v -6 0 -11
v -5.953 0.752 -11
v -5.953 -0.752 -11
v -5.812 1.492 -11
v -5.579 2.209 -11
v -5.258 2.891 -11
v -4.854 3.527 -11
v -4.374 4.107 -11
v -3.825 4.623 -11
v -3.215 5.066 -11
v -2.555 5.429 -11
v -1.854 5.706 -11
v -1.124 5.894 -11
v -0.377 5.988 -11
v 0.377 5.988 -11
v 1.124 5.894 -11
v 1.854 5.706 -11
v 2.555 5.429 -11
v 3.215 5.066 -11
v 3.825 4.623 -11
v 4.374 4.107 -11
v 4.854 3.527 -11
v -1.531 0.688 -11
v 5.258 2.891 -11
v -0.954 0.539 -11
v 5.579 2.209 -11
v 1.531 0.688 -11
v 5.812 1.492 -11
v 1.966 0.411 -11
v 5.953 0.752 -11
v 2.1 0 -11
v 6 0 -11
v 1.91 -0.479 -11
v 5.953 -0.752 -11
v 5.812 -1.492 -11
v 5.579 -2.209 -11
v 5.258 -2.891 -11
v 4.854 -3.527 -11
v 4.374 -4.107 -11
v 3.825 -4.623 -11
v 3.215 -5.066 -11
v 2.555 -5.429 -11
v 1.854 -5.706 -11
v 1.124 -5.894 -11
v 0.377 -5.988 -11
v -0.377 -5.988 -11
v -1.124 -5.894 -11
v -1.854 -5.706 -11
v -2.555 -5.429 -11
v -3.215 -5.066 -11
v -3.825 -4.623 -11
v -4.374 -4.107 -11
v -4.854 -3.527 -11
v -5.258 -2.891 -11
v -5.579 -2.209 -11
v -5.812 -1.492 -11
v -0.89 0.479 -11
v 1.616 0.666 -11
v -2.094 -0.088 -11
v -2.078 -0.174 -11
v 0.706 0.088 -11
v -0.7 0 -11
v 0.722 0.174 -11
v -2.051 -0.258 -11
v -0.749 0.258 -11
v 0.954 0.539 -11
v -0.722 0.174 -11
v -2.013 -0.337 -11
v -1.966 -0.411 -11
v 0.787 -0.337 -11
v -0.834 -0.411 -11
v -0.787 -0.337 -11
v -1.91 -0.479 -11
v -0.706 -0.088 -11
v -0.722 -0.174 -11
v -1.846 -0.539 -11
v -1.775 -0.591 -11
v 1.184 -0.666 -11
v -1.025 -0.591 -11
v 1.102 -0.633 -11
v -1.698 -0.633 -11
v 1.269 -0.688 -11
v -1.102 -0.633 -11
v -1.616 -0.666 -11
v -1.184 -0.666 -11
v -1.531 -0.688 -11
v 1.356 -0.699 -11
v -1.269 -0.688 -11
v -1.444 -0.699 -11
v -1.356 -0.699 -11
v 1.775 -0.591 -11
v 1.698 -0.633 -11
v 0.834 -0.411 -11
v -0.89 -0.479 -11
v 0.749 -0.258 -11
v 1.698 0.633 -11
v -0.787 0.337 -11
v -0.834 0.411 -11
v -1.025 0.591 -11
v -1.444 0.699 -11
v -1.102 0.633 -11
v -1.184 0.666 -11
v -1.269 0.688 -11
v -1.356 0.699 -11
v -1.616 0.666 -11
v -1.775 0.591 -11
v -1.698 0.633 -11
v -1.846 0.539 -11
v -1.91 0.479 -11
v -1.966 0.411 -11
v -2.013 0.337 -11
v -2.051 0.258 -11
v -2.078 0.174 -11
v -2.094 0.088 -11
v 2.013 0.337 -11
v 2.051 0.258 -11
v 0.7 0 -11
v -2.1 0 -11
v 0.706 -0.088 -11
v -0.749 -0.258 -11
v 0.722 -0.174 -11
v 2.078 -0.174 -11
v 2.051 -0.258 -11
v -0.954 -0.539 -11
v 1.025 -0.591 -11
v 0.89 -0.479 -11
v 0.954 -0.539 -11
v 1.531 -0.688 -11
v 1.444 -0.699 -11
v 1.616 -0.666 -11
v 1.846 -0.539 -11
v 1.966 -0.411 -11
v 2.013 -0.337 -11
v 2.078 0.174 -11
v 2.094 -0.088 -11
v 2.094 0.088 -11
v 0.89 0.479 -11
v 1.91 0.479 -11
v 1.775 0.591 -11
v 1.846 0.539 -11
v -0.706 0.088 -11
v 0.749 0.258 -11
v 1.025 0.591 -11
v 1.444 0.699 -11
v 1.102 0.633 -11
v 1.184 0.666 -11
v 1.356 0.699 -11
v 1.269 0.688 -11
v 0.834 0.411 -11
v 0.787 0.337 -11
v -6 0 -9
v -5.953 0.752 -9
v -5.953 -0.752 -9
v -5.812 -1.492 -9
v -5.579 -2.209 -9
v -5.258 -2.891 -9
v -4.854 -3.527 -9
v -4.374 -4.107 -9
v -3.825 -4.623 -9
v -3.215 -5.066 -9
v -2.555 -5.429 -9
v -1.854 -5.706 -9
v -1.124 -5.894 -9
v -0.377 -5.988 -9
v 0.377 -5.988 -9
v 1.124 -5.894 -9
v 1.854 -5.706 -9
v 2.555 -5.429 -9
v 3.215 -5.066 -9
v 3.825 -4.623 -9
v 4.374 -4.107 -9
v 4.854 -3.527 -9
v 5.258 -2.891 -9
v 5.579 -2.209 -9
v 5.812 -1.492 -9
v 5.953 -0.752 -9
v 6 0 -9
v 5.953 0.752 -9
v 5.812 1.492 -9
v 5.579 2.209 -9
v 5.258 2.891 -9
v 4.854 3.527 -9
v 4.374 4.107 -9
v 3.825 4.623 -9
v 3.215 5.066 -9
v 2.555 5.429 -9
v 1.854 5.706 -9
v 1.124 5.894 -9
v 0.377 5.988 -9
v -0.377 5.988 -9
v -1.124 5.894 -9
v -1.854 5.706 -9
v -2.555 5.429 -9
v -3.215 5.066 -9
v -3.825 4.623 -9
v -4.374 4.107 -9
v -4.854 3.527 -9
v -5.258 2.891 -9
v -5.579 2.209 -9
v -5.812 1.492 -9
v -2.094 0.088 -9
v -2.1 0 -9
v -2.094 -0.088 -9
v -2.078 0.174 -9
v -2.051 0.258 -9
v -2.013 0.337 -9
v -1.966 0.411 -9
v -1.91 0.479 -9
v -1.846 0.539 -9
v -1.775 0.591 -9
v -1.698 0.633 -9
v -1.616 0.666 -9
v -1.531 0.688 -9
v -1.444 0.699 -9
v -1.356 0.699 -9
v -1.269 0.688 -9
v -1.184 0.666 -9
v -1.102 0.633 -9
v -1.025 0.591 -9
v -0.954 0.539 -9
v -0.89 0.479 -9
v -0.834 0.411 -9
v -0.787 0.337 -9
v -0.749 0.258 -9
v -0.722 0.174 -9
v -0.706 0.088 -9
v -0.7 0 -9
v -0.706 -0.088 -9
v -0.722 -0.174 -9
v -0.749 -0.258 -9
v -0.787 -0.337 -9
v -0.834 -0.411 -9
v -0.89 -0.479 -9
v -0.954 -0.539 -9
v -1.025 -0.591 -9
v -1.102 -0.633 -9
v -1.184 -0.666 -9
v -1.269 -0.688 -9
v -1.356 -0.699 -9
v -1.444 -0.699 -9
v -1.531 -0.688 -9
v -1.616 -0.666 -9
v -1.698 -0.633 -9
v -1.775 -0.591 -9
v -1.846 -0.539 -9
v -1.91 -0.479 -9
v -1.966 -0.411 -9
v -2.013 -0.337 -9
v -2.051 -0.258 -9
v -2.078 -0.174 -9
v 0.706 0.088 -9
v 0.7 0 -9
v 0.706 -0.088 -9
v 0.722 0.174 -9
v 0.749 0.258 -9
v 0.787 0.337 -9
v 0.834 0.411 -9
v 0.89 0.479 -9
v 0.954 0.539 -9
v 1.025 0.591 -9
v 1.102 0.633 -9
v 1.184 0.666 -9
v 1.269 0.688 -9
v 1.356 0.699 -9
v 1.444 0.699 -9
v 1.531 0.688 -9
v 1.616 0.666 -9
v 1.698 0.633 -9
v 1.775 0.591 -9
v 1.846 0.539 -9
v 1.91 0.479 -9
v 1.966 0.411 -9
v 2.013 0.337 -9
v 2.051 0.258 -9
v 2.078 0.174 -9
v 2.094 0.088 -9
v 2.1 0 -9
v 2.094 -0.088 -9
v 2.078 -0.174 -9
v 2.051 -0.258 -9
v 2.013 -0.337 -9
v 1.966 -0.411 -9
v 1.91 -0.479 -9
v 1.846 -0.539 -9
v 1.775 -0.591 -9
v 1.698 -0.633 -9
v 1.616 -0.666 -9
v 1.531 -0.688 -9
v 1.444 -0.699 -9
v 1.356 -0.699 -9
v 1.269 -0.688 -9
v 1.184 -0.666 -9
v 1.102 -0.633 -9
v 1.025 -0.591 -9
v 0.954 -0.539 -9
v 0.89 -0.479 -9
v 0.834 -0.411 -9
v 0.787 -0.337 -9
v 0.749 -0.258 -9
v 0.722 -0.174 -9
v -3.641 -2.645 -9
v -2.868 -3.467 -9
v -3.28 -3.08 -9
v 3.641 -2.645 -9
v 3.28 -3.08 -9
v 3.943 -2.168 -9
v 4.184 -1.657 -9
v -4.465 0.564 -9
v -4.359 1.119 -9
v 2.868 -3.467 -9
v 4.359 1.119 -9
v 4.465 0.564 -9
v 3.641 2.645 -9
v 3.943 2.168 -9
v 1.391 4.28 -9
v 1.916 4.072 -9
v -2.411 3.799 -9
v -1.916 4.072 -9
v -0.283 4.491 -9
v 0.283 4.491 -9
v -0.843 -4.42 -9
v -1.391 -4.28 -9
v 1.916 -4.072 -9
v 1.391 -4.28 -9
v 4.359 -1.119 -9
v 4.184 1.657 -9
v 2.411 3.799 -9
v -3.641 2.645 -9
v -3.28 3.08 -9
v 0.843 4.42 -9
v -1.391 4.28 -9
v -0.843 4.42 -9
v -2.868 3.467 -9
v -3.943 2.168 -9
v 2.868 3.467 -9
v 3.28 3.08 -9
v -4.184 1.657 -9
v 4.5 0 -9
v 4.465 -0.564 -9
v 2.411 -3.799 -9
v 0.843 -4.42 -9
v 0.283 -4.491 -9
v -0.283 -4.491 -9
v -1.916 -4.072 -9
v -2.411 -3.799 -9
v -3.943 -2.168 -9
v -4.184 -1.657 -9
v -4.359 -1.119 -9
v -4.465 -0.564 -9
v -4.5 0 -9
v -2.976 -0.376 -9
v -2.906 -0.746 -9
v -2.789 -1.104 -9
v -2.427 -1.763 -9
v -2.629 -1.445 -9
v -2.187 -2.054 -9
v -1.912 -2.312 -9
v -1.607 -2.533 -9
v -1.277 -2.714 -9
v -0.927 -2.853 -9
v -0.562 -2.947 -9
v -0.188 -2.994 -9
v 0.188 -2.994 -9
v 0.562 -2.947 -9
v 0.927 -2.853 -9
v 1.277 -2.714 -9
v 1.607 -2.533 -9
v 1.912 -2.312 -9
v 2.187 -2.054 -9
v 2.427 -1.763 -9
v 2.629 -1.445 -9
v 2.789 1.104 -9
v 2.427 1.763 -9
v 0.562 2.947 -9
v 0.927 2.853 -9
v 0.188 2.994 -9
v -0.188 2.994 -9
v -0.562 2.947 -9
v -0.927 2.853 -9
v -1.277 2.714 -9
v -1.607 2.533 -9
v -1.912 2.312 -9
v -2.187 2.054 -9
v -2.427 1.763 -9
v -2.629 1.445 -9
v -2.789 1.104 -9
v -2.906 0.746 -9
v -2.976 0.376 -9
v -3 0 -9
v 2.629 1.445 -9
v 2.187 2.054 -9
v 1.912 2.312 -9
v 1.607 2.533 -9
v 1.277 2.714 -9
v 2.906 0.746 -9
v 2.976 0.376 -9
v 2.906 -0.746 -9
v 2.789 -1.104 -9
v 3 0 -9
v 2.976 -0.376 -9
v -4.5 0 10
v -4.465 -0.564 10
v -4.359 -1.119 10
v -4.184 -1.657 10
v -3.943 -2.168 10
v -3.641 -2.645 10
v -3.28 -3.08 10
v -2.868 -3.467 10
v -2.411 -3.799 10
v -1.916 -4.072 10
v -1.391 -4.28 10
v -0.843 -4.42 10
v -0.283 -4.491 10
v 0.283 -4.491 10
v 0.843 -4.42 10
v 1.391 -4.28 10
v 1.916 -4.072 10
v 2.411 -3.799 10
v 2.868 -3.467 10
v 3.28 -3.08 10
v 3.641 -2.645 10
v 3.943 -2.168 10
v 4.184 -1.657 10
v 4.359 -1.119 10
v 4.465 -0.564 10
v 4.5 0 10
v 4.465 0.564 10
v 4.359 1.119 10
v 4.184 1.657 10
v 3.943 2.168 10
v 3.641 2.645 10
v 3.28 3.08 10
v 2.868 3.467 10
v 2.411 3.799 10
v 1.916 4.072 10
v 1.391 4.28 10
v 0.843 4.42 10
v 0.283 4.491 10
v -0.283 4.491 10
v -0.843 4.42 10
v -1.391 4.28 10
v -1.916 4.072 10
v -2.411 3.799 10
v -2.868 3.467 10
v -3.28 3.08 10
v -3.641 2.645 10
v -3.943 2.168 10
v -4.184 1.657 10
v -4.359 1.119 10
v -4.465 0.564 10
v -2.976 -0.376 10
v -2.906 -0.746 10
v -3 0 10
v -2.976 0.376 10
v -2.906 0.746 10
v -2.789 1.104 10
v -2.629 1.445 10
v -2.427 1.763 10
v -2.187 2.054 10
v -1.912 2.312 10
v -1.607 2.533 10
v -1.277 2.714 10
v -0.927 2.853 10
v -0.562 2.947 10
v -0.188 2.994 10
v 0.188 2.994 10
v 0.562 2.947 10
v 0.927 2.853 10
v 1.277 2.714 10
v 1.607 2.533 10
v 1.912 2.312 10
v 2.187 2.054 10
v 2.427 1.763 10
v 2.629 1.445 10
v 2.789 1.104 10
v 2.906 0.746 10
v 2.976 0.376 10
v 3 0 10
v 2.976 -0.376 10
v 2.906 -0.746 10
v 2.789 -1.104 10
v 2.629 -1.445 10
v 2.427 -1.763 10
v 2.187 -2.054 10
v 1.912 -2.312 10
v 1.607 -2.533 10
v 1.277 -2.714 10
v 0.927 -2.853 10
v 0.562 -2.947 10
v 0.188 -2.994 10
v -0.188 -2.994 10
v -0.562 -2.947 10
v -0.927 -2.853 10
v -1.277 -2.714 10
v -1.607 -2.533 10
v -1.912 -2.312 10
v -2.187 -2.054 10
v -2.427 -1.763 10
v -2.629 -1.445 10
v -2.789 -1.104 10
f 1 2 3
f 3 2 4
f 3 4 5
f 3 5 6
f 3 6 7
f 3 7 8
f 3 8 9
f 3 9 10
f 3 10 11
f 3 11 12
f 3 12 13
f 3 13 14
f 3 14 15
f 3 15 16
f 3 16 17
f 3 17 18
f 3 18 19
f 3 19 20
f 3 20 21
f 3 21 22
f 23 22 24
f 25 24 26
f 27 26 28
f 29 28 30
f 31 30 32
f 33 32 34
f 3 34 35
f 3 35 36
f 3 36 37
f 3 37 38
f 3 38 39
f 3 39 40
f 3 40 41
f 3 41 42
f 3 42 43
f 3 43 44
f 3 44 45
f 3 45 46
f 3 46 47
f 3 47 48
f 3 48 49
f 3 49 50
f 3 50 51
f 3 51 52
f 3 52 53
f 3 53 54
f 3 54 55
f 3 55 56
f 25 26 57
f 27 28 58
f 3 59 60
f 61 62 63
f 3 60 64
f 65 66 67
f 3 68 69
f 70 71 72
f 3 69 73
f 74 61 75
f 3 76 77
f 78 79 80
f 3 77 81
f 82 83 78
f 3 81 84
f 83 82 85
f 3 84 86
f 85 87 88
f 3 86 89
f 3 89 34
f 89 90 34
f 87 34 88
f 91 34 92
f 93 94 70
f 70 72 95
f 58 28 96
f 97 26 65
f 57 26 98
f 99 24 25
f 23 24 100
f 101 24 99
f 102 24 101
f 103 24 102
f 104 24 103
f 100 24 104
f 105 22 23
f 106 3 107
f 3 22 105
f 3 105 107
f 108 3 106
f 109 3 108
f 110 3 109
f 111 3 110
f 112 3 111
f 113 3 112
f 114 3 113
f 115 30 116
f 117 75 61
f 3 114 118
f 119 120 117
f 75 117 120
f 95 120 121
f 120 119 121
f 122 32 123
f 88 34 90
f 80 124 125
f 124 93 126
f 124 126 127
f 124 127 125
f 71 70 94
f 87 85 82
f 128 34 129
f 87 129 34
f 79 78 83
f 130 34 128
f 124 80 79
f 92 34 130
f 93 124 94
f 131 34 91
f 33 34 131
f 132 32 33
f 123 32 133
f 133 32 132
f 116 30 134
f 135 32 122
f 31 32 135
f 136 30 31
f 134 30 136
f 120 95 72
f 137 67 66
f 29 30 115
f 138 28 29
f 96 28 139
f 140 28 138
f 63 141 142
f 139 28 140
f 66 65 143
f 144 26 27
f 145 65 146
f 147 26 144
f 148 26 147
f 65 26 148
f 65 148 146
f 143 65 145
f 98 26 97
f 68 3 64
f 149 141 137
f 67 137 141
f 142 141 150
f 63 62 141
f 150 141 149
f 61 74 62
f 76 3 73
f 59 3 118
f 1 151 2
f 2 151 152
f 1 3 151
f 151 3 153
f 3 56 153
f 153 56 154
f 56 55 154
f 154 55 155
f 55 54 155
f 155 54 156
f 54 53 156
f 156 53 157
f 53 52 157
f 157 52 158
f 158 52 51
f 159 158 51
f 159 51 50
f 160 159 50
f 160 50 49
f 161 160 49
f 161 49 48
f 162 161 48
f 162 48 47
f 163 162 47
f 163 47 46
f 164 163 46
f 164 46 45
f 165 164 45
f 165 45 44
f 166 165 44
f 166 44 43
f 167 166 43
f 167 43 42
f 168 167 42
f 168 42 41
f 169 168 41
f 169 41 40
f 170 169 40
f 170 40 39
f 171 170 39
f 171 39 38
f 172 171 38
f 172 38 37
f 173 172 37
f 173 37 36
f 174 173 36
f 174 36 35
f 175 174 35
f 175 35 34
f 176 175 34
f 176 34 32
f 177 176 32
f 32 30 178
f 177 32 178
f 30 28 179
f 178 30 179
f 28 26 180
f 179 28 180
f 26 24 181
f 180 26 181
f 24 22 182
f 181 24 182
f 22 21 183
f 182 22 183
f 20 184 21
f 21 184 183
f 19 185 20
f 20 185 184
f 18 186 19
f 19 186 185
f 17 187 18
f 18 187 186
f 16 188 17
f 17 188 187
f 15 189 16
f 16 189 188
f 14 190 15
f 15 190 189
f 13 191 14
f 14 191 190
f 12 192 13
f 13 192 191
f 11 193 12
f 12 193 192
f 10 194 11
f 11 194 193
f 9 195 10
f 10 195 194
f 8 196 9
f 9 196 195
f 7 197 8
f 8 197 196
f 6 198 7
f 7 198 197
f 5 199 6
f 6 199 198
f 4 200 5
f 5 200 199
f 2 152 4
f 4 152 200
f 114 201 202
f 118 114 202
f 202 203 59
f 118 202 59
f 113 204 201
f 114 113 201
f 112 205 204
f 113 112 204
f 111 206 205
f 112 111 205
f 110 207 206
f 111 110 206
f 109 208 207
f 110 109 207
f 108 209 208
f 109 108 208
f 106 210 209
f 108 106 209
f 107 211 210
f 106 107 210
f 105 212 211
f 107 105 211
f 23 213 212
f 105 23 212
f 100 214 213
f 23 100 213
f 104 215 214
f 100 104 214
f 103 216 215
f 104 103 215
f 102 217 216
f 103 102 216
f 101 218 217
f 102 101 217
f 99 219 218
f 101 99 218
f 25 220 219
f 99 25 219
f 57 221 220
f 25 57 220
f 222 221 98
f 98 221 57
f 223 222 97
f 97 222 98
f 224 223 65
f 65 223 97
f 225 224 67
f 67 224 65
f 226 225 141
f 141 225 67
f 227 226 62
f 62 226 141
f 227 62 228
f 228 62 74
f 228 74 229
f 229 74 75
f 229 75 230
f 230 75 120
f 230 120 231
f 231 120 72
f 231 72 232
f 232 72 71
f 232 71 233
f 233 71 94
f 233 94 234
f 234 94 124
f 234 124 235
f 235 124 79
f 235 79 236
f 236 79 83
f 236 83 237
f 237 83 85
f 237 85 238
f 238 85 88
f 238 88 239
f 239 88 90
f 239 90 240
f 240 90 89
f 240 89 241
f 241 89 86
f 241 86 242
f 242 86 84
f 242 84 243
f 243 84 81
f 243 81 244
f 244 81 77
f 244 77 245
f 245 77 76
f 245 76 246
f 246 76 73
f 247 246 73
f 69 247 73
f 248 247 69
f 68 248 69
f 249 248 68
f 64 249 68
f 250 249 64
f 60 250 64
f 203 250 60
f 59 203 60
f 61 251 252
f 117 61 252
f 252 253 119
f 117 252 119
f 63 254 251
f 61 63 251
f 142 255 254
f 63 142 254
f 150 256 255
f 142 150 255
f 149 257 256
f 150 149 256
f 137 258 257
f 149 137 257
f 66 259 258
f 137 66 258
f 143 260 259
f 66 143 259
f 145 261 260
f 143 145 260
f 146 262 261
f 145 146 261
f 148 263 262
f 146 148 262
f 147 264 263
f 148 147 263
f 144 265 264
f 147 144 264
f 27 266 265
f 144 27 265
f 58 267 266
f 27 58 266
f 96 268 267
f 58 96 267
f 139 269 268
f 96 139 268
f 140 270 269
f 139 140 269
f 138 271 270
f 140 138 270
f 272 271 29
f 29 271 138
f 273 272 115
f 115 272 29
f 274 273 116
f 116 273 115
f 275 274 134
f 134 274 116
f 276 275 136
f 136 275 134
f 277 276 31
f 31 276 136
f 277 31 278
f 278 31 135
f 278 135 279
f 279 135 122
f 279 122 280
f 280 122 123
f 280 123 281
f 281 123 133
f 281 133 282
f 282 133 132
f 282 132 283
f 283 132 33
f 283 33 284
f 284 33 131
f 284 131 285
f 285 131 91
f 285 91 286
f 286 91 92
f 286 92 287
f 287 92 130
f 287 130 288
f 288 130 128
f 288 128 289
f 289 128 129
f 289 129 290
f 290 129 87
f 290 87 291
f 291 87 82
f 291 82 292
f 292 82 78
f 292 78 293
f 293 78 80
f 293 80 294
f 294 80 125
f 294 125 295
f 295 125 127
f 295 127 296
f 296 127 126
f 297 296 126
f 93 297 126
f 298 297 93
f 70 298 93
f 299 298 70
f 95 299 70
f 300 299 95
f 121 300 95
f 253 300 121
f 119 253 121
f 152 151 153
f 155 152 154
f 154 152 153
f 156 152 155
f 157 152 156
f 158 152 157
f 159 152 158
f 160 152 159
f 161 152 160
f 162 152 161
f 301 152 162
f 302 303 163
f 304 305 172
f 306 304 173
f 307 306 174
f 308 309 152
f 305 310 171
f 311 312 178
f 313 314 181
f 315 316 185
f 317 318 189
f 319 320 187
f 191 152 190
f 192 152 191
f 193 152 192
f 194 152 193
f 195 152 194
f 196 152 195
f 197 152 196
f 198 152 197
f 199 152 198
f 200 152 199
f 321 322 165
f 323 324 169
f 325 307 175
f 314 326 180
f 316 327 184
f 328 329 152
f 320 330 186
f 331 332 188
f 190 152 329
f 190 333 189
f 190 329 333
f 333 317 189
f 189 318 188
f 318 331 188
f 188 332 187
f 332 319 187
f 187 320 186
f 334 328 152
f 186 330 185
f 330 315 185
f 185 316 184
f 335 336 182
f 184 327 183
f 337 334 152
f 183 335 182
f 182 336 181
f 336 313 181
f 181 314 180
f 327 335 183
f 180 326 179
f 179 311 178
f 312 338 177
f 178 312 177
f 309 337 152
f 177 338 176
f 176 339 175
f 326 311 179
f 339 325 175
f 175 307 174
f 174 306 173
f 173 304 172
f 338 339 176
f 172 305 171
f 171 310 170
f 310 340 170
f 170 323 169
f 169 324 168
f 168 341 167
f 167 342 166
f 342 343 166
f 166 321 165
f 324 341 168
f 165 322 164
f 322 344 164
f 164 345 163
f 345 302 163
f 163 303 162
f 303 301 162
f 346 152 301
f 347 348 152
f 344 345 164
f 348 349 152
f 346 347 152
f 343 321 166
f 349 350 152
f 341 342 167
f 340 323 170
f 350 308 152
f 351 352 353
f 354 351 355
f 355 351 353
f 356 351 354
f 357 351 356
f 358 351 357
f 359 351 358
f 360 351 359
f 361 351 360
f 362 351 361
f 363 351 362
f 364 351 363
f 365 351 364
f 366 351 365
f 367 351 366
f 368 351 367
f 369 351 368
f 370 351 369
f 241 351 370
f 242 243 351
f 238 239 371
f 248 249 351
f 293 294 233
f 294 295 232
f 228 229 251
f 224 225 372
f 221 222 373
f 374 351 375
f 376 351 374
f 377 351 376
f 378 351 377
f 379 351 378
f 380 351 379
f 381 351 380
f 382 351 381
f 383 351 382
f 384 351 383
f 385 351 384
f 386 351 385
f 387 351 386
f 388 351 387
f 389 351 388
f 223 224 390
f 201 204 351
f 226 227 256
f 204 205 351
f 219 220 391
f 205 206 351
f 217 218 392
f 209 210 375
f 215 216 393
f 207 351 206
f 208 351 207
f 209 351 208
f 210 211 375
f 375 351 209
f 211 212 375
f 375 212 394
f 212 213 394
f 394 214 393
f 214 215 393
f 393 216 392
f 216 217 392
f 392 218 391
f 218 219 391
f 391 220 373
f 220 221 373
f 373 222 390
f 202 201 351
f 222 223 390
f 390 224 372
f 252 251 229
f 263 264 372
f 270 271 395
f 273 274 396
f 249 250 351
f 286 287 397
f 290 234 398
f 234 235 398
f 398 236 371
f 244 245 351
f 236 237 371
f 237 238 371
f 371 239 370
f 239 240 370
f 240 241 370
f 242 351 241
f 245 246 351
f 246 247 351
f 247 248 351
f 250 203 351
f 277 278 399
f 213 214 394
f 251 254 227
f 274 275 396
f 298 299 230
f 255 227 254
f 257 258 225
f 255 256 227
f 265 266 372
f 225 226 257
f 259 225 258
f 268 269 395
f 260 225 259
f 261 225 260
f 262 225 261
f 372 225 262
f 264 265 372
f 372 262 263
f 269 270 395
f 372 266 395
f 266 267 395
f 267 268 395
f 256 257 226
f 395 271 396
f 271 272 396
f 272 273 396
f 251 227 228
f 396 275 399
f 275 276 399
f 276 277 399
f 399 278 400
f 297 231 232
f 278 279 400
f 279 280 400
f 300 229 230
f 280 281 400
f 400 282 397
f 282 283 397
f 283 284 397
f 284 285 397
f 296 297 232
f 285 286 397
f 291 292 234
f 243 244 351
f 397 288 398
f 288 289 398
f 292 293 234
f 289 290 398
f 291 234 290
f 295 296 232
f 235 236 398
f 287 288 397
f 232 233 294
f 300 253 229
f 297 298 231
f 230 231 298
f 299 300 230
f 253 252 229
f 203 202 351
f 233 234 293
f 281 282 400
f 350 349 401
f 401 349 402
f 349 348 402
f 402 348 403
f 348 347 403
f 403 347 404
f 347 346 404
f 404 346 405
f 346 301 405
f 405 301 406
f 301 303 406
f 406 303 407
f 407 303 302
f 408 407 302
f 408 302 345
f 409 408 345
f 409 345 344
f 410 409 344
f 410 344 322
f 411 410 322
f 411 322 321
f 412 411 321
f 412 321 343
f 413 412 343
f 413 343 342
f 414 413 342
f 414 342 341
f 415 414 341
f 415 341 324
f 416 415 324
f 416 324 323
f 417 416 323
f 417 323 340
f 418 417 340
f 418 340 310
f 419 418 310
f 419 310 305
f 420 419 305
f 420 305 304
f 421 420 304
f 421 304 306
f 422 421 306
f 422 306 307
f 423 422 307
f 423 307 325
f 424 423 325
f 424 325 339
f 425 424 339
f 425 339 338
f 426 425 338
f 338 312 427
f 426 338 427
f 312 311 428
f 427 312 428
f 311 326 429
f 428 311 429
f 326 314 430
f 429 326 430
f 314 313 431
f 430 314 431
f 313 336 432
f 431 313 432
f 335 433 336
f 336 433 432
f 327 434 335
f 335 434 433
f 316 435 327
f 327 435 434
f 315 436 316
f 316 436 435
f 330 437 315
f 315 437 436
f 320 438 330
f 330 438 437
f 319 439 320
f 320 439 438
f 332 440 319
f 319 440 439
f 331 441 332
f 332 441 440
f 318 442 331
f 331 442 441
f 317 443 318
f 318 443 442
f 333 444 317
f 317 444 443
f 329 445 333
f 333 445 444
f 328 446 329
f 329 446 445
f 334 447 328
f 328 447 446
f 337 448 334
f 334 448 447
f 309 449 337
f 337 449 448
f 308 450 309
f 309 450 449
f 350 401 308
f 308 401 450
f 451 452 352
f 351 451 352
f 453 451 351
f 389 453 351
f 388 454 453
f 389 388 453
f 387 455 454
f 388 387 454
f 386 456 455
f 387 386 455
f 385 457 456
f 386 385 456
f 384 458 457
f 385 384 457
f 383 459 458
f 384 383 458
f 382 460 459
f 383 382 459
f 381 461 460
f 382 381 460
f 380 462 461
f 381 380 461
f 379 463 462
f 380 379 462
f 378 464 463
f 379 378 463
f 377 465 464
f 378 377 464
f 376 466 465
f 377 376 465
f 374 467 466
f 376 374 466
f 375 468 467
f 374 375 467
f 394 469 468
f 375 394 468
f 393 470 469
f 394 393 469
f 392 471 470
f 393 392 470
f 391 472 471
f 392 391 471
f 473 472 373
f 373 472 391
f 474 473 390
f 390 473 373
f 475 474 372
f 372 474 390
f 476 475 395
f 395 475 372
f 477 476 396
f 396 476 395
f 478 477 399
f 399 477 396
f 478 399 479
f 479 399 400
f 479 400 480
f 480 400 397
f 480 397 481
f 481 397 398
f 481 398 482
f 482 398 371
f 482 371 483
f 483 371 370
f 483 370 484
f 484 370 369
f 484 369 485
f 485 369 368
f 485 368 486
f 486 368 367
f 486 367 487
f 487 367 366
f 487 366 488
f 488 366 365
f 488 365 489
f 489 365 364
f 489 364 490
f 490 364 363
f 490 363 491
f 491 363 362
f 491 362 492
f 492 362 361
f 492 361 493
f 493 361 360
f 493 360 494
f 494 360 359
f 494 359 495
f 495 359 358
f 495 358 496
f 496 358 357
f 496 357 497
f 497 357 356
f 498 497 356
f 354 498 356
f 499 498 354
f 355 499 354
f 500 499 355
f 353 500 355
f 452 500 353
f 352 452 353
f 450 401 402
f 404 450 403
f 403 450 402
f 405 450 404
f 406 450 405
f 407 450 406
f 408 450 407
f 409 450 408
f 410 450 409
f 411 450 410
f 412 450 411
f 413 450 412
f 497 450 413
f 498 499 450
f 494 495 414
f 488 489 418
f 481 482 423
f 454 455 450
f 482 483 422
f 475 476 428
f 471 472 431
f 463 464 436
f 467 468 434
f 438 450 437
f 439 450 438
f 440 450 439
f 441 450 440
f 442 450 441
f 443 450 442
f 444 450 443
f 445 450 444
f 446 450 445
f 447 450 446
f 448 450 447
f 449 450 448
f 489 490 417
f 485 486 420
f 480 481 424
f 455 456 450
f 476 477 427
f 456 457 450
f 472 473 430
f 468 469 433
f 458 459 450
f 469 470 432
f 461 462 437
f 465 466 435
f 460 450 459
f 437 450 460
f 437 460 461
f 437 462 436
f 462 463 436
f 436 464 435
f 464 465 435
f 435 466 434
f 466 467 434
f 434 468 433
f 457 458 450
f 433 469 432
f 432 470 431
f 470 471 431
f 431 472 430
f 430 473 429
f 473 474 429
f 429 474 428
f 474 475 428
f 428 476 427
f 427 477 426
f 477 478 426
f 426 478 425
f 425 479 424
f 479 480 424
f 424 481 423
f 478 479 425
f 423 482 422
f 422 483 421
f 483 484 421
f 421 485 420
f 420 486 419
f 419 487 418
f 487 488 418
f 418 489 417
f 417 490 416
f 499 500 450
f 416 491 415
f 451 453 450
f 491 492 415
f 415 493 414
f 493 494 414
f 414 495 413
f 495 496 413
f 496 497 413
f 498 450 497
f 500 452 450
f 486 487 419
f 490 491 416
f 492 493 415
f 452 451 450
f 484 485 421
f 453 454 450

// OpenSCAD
difference()
{
union()
{
cylinder(r=4.5,h=20, center=true, $fn=50);
translate([0,0,-10])
cylinder(r=6,h=2, center=true, $fn=50);
}
translate([0,0,1])
cylinder(r=3,h=20, center=true, $fn=50);

translate([1.4,0,0])
cylinder(r=0.7,h=40, center=true, $fn=50);
translate([-1.4,0,0])
cylinder(r=0.7,h=40, center=true, $fn=50);


}
